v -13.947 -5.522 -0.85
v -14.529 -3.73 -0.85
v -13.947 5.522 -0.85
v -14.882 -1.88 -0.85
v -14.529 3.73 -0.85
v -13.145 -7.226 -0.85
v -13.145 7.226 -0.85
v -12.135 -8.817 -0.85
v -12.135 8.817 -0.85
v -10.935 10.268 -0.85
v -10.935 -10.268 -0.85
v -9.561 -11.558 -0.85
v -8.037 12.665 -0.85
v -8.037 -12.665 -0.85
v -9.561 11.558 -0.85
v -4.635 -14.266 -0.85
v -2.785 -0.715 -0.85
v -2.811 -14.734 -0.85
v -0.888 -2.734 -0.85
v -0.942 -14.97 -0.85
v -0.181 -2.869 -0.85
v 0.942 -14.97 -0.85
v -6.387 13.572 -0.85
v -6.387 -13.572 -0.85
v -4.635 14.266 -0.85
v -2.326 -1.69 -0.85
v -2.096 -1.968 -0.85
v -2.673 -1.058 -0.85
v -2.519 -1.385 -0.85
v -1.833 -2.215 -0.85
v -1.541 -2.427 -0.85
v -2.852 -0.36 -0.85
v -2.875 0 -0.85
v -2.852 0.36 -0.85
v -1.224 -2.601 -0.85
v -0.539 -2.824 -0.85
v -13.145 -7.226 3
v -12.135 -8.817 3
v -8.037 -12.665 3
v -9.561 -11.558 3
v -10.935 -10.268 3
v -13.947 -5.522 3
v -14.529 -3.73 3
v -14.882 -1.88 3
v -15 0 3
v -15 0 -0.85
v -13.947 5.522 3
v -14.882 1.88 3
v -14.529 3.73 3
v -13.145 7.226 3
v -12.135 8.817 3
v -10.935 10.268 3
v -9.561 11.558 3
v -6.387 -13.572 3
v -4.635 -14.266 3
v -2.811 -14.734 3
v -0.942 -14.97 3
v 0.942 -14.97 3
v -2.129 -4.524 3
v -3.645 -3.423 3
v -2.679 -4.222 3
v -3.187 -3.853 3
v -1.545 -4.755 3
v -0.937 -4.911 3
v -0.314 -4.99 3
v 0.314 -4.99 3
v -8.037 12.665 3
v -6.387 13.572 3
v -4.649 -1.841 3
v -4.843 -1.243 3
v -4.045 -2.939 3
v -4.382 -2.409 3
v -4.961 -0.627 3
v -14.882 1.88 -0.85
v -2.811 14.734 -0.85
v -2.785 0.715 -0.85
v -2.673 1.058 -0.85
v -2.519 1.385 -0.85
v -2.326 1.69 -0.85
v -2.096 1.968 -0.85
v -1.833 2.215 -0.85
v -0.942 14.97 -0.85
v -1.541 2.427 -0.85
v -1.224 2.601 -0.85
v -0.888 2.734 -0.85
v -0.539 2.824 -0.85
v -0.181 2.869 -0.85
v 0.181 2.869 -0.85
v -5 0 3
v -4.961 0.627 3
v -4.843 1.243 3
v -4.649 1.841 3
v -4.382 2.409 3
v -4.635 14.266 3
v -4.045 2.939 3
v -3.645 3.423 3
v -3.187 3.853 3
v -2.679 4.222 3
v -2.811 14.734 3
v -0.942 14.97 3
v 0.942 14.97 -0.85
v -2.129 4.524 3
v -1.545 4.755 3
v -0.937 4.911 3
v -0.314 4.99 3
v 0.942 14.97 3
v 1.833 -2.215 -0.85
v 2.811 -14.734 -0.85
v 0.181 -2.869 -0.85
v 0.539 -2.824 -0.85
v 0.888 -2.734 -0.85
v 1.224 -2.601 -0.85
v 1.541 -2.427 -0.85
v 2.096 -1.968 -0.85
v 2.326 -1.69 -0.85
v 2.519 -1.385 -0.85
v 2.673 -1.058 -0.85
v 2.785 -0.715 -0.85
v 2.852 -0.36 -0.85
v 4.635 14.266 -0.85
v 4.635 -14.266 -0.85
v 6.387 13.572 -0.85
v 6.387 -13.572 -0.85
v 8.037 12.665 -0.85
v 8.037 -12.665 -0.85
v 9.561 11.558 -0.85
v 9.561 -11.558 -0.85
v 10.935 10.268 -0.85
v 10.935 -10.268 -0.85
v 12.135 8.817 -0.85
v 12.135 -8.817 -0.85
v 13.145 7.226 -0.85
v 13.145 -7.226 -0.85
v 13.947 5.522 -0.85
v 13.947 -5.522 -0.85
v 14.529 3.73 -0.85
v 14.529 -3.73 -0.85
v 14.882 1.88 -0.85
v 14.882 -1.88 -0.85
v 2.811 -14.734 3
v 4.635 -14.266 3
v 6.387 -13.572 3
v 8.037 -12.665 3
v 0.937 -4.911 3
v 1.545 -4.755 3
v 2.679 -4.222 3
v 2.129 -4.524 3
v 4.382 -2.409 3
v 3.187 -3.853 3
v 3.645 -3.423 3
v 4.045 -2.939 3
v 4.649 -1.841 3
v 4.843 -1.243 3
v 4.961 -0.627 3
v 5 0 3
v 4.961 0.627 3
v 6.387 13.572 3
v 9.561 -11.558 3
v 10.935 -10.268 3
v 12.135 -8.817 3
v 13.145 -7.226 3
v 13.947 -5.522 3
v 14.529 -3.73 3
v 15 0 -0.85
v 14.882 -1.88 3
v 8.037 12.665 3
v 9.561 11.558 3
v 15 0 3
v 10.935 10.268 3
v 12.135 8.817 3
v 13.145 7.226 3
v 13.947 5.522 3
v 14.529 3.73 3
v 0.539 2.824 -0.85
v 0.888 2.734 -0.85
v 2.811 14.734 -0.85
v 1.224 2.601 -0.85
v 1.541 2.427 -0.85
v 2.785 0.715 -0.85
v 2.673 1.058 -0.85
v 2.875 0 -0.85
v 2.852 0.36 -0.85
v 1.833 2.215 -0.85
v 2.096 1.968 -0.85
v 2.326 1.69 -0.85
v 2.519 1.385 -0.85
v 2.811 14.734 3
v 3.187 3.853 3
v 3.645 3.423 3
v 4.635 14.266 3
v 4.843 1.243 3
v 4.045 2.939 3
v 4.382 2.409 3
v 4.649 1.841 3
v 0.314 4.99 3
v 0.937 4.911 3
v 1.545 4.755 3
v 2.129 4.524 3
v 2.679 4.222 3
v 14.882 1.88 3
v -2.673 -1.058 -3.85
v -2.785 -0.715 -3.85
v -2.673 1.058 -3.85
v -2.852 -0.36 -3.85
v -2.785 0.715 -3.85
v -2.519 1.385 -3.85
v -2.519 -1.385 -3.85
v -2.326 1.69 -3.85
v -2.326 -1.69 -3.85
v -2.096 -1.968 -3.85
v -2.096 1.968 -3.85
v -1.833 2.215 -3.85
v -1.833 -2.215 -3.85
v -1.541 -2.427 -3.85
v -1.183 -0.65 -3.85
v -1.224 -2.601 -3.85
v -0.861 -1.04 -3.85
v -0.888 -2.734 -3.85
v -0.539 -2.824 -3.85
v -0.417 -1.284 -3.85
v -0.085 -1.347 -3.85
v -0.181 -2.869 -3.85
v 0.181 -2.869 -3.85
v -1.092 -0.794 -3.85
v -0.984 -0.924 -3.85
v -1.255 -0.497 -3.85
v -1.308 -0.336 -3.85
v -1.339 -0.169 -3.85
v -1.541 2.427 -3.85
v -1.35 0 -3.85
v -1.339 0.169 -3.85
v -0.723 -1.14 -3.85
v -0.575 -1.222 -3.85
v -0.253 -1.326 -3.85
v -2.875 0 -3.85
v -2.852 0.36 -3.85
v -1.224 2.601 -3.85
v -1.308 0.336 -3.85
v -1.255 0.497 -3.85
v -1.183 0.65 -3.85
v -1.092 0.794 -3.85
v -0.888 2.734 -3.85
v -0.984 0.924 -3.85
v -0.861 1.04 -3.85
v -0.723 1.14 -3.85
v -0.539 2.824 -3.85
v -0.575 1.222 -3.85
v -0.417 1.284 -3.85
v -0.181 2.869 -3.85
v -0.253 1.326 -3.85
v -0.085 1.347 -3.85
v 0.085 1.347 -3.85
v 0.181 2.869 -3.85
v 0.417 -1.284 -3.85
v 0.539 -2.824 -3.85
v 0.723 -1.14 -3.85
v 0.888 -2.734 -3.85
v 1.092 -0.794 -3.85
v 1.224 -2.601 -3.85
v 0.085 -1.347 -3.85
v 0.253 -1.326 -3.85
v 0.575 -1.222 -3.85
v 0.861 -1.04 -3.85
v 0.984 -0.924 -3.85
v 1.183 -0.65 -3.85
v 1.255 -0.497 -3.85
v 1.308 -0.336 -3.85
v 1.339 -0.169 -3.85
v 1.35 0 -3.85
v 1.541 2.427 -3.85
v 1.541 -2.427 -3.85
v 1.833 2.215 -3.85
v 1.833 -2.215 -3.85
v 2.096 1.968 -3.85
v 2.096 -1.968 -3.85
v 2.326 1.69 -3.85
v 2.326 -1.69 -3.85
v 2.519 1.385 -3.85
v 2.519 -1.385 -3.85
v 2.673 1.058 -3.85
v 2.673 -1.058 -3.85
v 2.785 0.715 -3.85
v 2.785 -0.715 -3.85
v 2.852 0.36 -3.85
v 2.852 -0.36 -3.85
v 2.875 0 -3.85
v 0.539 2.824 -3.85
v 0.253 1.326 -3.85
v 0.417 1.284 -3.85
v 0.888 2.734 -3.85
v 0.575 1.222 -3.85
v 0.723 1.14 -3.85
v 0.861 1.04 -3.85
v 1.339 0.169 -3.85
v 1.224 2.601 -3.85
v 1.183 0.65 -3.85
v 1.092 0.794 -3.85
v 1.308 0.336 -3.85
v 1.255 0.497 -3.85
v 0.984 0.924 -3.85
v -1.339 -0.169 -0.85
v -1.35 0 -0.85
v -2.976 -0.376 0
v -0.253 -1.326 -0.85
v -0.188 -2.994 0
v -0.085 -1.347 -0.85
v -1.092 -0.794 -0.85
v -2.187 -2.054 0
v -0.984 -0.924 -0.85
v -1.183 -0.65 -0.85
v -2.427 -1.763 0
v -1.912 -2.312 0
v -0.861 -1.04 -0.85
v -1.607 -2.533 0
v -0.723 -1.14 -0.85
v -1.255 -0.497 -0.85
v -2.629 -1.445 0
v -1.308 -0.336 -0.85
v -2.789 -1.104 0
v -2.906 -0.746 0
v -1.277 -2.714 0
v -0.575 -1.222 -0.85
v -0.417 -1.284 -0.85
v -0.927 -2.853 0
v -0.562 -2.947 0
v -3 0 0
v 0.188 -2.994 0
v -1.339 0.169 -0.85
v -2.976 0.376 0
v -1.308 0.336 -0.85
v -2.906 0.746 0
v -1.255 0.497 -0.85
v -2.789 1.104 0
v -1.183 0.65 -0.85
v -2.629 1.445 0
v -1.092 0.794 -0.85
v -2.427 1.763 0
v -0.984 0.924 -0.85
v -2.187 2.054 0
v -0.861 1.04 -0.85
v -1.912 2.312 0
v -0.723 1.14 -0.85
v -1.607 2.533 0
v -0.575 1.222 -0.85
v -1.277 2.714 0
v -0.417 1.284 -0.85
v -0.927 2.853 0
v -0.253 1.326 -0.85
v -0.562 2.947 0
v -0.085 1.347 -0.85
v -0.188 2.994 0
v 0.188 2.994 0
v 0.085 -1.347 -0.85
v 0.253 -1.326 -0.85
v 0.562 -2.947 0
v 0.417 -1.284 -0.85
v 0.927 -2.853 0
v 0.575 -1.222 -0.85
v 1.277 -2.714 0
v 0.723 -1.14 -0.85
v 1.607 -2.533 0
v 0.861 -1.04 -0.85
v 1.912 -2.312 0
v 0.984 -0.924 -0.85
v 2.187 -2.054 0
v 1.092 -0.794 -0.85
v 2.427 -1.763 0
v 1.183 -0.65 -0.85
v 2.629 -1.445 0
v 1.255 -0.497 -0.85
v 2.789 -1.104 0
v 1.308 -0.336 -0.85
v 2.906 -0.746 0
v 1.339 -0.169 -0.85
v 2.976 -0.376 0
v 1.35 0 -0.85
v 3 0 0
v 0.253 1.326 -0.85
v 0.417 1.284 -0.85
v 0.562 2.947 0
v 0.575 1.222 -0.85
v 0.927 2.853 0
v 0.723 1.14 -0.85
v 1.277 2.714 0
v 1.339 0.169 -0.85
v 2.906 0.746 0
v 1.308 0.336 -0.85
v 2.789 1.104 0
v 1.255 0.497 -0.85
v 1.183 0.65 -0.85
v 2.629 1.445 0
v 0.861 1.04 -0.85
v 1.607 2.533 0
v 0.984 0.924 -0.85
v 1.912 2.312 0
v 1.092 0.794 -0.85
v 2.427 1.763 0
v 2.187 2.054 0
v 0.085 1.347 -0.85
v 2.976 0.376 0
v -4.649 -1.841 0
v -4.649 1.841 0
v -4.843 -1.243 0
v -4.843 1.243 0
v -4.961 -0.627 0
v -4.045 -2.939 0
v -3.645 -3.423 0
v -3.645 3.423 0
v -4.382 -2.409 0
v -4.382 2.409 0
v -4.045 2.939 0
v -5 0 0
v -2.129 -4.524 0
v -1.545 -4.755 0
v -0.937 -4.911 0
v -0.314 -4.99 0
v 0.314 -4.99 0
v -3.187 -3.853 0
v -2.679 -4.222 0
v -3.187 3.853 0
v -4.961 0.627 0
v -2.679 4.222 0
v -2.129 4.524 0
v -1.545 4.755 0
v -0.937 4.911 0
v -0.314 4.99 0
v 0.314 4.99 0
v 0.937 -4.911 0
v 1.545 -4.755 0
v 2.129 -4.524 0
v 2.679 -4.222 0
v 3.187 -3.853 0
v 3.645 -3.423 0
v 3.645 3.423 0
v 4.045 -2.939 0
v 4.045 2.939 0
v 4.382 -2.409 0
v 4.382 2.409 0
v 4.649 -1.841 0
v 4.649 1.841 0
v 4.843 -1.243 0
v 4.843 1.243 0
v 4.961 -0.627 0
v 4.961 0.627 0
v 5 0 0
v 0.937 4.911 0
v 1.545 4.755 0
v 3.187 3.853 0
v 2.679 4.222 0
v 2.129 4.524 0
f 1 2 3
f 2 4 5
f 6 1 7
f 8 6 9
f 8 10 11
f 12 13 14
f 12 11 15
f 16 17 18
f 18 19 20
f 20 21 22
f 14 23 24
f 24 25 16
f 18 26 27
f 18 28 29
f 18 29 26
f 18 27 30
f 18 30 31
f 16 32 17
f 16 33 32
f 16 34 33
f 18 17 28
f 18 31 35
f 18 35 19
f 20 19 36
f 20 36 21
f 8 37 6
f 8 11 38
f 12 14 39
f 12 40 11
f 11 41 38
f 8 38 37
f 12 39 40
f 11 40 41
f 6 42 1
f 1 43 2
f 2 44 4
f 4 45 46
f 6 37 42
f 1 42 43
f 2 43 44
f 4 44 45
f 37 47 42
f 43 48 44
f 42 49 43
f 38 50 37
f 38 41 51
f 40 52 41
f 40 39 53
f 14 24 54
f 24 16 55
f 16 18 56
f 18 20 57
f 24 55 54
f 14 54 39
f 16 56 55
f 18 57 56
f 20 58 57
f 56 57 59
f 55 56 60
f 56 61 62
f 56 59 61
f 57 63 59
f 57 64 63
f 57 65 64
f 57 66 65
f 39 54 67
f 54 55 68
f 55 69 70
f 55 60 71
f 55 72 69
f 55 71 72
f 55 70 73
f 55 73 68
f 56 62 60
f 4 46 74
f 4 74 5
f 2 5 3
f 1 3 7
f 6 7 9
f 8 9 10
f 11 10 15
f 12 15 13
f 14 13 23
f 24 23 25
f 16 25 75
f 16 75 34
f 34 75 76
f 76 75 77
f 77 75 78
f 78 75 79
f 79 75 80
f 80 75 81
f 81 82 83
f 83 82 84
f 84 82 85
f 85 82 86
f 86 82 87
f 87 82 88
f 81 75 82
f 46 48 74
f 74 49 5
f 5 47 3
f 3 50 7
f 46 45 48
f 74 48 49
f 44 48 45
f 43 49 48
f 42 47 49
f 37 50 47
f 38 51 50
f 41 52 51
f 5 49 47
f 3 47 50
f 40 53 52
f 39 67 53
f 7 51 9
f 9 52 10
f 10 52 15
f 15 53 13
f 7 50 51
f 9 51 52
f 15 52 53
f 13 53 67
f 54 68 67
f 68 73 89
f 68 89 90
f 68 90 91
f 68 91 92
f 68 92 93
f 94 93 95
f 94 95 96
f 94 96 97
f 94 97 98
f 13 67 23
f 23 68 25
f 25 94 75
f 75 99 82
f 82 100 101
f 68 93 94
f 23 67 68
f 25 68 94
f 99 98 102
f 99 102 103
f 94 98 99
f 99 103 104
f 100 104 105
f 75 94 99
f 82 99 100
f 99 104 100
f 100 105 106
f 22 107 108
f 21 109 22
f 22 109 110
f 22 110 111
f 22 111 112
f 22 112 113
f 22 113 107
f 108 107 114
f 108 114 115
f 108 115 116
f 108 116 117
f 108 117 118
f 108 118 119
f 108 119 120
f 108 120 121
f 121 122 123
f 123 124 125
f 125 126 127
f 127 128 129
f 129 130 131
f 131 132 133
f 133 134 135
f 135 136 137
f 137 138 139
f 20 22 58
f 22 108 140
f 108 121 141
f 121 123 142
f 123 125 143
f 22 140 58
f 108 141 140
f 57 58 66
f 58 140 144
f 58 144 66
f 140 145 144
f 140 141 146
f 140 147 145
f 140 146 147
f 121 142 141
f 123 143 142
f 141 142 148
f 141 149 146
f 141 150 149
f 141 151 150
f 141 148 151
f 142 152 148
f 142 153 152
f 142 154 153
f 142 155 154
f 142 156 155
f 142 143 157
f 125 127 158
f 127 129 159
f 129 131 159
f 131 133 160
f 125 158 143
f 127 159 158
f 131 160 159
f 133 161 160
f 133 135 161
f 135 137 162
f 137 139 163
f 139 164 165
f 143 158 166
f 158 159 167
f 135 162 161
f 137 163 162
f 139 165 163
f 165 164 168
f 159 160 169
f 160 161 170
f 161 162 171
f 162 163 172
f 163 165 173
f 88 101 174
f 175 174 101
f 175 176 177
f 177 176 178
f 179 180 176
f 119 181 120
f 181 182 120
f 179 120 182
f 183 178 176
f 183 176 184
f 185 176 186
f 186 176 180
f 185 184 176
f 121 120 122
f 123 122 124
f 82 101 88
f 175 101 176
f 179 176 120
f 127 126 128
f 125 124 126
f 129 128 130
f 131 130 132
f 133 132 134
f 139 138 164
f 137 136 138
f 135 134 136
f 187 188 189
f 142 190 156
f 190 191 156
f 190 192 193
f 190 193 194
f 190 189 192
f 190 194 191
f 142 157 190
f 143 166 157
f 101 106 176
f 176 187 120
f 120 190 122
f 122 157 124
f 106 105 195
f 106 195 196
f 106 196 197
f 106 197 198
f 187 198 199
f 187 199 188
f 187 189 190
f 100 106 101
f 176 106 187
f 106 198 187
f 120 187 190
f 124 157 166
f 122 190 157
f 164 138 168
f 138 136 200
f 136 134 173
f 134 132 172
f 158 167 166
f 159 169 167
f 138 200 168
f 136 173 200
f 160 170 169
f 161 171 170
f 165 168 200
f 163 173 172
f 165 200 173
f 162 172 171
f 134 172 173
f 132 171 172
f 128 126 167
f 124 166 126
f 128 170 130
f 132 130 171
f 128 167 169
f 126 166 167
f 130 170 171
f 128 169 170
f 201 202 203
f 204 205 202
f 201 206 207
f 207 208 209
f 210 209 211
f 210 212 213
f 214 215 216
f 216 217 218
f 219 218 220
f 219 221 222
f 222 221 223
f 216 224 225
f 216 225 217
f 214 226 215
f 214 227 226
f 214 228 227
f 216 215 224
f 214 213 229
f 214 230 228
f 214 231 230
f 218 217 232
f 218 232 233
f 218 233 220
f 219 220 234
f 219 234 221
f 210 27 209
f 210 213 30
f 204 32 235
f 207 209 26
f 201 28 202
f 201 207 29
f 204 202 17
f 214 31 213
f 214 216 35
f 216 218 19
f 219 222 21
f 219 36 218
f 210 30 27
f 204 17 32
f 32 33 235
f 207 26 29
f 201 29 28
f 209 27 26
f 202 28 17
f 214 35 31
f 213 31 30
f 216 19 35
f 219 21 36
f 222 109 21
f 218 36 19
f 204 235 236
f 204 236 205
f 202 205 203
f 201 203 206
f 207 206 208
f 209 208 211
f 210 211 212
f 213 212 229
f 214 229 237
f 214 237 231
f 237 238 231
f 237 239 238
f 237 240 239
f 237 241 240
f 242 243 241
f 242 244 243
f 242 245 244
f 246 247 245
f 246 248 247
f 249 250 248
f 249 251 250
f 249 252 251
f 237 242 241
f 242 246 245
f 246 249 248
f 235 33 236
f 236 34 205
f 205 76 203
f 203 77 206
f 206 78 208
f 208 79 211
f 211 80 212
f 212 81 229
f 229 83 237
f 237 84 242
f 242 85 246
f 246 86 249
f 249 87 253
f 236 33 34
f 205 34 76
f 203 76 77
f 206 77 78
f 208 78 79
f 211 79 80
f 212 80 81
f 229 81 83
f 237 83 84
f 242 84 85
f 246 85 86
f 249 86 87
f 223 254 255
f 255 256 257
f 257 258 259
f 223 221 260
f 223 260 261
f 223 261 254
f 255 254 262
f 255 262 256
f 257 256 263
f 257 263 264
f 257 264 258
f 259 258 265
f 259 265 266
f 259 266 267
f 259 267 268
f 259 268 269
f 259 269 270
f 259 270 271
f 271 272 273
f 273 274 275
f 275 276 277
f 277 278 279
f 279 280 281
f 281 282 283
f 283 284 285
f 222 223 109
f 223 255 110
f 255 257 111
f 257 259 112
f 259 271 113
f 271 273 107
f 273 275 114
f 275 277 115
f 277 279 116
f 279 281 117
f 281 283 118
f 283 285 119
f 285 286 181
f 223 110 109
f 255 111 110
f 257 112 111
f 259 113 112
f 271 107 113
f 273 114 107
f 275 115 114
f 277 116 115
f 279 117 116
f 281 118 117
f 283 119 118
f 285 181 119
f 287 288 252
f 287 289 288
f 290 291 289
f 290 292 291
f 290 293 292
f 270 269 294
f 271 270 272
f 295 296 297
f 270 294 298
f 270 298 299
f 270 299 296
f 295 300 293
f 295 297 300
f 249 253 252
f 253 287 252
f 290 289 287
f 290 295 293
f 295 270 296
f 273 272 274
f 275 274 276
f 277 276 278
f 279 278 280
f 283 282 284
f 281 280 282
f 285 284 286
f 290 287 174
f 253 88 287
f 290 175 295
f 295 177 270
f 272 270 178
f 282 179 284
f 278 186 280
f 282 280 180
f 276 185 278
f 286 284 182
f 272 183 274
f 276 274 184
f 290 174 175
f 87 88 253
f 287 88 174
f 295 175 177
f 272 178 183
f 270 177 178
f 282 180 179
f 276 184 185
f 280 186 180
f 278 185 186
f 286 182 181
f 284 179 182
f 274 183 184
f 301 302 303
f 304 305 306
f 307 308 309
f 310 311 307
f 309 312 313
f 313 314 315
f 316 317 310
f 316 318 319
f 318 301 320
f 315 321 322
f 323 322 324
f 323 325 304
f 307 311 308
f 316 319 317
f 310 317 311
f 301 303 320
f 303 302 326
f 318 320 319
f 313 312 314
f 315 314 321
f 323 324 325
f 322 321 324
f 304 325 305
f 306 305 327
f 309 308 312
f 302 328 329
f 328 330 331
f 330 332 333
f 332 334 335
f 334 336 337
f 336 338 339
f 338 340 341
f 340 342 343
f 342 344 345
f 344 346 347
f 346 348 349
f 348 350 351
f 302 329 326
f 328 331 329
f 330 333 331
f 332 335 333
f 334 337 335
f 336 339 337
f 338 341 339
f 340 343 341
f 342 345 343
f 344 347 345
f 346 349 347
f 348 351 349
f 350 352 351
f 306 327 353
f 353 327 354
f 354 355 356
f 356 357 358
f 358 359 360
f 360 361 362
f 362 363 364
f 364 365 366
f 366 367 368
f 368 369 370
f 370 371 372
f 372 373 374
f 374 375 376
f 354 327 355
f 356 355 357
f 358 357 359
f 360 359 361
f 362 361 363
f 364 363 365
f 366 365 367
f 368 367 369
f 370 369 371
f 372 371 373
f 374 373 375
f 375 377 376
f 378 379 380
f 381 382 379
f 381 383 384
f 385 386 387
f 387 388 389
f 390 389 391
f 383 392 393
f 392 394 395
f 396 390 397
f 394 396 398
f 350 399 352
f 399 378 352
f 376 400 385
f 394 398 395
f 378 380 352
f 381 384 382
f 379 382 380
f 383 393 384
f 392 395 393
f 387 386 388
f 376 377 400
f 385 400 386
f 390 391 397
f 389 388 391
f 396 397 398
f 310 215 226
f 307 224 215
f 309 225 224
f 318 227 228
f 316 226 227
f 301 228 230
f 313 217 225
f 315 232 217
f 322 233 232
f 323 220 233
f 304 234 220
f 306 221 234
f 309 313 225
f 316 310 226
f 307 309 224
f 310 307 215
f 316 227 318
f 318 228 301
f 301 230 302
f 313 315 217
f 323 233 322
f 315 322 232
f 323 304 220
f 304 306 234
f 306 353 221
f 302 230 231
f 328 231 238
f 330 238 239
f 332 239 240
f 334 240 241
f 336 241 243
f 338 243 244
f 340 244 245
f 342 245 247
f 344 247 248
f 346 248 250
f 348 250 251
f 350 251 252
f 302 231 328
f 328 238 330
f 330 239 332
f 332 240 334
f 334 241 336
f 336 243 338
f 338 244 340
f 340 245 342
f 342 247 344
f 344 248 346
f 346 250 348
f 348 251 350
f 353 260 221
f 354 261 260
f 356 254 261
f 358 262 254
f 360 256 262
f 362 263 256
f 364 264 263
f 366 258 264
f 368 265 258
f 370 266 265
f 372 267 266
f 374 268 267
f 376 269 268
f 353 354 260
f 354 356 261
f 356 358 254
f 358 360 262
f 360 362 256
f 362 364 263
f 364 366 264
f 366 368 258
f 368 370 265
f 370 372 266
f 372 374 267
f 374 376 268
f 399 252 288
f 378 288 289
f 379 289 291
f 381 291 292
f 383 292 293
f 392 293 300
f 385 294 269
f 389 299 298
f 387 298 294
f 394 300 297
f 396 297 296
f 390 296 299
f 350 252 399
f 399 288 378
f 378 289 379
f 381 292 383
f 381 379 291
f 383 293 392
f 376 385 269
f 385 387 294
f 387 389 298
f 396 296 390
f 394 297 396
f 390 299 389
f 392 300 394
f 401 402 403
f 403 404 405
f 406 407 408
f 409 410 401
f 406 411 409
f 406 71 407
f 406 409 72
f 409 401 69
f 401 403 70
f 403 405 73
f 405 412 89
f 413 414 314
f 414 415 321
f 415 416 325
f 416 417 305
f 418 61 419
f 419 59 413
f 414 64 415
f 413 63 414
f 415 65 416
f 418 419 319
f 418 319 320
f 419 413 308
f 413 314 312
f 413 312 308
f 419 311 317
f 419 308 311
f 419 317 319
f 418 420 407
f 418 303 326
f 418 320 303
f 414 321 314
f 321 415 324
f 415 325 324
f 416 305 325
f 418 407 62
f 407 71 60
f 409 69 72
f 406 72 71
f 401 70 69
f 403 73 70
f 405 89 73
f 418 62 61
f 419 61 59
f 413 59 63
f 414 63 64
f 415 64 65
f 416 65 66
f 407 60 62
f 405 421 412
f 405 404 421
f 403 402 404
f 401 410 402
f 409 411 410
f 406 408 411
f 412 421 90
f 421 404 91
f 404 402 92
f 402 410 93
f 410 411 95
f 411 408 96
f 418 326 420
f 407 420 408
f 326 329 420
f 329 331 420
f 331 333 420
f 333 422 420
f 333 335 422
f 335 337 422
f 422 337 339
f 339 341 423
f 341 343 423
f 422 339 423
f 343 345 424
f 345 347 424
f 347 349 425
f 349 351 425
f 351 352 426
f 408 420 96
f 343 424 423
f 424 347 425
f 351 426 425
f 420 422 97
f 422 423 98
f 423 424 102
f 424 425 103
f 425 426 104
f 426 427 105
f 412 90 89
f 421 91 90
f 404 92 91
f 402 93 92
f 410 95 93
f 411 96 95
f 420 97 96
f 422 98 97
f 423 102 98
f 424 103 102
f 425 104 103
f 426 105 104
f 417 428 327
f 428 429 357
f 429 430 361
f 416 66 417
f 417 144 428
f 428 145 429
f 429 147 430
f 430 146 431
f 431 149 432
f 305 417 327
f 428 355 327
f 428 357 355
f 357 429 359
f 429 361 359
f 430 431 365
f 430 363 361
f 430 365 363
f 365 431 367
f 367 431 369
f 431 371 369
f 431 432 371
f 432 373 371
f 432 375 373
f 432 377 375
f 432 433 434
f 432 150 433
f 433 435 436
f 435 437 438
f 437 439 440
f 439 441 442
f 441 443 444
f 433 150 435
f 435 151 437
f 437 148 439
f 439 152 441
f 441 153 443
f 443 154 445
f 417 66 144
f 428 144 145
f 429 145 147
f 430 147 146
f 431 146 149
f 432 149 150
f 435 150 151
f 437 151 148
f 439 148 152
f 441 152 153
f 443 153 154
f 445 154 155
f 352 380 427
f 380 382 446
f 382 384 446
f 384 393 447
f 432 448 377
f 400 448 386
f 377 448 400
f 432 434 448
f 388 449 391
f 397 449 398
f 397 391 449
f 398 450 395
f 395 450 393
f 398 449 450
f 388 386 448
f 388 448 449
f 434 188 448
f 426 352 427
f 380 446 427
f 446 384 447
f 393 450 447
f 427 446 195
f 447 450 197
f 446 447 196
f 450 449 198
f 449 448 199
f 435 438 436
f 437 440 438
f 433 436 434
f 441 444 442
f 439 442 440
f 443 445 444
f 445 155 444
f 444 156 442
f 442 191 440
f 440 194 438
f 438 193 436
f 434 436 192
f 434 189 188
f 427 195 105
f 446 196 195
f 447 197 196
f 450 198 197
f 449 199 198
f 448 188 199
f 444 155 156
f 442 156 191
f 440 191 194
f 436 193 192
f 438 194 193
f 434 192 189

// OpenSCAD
$fn = 50;

difference() {
	union() {
		translate(v = [0, 0, -0.8500000000000001]) {
			cylinder(h = 3.85, r = 15.0);
		}
		#translate(v = [0, 0, -3.85]) {
			cylinder(h = 3.85, r = 2.875);
		}
	}
	union() {
		translate(v = [0, 0, 0]) {
			rotate(a = [0, 0, 0]) {
				difference() {
					union() {
						translate(v = [0, 0, -3.85]) {
							cylinder(h = 3.85, r = 1.0);
						}
						translate(v = [0, 0, -0.85]) {
							cylinder(h = 0.85, r1 = 1.35, r2 = 3.0);
						}
						translate(v = [0, 0, -3.85]) {
							cylinder(h = 3.85, r = 1.35);
						}
						translate(v = [0, 0, -3.85]) {
							cylinder(h = 3.85, r = 1.0);
						}
					}
					union();
				}
			}
		}
		#cylinder(h = 3, r = 5.0);
	}
}
